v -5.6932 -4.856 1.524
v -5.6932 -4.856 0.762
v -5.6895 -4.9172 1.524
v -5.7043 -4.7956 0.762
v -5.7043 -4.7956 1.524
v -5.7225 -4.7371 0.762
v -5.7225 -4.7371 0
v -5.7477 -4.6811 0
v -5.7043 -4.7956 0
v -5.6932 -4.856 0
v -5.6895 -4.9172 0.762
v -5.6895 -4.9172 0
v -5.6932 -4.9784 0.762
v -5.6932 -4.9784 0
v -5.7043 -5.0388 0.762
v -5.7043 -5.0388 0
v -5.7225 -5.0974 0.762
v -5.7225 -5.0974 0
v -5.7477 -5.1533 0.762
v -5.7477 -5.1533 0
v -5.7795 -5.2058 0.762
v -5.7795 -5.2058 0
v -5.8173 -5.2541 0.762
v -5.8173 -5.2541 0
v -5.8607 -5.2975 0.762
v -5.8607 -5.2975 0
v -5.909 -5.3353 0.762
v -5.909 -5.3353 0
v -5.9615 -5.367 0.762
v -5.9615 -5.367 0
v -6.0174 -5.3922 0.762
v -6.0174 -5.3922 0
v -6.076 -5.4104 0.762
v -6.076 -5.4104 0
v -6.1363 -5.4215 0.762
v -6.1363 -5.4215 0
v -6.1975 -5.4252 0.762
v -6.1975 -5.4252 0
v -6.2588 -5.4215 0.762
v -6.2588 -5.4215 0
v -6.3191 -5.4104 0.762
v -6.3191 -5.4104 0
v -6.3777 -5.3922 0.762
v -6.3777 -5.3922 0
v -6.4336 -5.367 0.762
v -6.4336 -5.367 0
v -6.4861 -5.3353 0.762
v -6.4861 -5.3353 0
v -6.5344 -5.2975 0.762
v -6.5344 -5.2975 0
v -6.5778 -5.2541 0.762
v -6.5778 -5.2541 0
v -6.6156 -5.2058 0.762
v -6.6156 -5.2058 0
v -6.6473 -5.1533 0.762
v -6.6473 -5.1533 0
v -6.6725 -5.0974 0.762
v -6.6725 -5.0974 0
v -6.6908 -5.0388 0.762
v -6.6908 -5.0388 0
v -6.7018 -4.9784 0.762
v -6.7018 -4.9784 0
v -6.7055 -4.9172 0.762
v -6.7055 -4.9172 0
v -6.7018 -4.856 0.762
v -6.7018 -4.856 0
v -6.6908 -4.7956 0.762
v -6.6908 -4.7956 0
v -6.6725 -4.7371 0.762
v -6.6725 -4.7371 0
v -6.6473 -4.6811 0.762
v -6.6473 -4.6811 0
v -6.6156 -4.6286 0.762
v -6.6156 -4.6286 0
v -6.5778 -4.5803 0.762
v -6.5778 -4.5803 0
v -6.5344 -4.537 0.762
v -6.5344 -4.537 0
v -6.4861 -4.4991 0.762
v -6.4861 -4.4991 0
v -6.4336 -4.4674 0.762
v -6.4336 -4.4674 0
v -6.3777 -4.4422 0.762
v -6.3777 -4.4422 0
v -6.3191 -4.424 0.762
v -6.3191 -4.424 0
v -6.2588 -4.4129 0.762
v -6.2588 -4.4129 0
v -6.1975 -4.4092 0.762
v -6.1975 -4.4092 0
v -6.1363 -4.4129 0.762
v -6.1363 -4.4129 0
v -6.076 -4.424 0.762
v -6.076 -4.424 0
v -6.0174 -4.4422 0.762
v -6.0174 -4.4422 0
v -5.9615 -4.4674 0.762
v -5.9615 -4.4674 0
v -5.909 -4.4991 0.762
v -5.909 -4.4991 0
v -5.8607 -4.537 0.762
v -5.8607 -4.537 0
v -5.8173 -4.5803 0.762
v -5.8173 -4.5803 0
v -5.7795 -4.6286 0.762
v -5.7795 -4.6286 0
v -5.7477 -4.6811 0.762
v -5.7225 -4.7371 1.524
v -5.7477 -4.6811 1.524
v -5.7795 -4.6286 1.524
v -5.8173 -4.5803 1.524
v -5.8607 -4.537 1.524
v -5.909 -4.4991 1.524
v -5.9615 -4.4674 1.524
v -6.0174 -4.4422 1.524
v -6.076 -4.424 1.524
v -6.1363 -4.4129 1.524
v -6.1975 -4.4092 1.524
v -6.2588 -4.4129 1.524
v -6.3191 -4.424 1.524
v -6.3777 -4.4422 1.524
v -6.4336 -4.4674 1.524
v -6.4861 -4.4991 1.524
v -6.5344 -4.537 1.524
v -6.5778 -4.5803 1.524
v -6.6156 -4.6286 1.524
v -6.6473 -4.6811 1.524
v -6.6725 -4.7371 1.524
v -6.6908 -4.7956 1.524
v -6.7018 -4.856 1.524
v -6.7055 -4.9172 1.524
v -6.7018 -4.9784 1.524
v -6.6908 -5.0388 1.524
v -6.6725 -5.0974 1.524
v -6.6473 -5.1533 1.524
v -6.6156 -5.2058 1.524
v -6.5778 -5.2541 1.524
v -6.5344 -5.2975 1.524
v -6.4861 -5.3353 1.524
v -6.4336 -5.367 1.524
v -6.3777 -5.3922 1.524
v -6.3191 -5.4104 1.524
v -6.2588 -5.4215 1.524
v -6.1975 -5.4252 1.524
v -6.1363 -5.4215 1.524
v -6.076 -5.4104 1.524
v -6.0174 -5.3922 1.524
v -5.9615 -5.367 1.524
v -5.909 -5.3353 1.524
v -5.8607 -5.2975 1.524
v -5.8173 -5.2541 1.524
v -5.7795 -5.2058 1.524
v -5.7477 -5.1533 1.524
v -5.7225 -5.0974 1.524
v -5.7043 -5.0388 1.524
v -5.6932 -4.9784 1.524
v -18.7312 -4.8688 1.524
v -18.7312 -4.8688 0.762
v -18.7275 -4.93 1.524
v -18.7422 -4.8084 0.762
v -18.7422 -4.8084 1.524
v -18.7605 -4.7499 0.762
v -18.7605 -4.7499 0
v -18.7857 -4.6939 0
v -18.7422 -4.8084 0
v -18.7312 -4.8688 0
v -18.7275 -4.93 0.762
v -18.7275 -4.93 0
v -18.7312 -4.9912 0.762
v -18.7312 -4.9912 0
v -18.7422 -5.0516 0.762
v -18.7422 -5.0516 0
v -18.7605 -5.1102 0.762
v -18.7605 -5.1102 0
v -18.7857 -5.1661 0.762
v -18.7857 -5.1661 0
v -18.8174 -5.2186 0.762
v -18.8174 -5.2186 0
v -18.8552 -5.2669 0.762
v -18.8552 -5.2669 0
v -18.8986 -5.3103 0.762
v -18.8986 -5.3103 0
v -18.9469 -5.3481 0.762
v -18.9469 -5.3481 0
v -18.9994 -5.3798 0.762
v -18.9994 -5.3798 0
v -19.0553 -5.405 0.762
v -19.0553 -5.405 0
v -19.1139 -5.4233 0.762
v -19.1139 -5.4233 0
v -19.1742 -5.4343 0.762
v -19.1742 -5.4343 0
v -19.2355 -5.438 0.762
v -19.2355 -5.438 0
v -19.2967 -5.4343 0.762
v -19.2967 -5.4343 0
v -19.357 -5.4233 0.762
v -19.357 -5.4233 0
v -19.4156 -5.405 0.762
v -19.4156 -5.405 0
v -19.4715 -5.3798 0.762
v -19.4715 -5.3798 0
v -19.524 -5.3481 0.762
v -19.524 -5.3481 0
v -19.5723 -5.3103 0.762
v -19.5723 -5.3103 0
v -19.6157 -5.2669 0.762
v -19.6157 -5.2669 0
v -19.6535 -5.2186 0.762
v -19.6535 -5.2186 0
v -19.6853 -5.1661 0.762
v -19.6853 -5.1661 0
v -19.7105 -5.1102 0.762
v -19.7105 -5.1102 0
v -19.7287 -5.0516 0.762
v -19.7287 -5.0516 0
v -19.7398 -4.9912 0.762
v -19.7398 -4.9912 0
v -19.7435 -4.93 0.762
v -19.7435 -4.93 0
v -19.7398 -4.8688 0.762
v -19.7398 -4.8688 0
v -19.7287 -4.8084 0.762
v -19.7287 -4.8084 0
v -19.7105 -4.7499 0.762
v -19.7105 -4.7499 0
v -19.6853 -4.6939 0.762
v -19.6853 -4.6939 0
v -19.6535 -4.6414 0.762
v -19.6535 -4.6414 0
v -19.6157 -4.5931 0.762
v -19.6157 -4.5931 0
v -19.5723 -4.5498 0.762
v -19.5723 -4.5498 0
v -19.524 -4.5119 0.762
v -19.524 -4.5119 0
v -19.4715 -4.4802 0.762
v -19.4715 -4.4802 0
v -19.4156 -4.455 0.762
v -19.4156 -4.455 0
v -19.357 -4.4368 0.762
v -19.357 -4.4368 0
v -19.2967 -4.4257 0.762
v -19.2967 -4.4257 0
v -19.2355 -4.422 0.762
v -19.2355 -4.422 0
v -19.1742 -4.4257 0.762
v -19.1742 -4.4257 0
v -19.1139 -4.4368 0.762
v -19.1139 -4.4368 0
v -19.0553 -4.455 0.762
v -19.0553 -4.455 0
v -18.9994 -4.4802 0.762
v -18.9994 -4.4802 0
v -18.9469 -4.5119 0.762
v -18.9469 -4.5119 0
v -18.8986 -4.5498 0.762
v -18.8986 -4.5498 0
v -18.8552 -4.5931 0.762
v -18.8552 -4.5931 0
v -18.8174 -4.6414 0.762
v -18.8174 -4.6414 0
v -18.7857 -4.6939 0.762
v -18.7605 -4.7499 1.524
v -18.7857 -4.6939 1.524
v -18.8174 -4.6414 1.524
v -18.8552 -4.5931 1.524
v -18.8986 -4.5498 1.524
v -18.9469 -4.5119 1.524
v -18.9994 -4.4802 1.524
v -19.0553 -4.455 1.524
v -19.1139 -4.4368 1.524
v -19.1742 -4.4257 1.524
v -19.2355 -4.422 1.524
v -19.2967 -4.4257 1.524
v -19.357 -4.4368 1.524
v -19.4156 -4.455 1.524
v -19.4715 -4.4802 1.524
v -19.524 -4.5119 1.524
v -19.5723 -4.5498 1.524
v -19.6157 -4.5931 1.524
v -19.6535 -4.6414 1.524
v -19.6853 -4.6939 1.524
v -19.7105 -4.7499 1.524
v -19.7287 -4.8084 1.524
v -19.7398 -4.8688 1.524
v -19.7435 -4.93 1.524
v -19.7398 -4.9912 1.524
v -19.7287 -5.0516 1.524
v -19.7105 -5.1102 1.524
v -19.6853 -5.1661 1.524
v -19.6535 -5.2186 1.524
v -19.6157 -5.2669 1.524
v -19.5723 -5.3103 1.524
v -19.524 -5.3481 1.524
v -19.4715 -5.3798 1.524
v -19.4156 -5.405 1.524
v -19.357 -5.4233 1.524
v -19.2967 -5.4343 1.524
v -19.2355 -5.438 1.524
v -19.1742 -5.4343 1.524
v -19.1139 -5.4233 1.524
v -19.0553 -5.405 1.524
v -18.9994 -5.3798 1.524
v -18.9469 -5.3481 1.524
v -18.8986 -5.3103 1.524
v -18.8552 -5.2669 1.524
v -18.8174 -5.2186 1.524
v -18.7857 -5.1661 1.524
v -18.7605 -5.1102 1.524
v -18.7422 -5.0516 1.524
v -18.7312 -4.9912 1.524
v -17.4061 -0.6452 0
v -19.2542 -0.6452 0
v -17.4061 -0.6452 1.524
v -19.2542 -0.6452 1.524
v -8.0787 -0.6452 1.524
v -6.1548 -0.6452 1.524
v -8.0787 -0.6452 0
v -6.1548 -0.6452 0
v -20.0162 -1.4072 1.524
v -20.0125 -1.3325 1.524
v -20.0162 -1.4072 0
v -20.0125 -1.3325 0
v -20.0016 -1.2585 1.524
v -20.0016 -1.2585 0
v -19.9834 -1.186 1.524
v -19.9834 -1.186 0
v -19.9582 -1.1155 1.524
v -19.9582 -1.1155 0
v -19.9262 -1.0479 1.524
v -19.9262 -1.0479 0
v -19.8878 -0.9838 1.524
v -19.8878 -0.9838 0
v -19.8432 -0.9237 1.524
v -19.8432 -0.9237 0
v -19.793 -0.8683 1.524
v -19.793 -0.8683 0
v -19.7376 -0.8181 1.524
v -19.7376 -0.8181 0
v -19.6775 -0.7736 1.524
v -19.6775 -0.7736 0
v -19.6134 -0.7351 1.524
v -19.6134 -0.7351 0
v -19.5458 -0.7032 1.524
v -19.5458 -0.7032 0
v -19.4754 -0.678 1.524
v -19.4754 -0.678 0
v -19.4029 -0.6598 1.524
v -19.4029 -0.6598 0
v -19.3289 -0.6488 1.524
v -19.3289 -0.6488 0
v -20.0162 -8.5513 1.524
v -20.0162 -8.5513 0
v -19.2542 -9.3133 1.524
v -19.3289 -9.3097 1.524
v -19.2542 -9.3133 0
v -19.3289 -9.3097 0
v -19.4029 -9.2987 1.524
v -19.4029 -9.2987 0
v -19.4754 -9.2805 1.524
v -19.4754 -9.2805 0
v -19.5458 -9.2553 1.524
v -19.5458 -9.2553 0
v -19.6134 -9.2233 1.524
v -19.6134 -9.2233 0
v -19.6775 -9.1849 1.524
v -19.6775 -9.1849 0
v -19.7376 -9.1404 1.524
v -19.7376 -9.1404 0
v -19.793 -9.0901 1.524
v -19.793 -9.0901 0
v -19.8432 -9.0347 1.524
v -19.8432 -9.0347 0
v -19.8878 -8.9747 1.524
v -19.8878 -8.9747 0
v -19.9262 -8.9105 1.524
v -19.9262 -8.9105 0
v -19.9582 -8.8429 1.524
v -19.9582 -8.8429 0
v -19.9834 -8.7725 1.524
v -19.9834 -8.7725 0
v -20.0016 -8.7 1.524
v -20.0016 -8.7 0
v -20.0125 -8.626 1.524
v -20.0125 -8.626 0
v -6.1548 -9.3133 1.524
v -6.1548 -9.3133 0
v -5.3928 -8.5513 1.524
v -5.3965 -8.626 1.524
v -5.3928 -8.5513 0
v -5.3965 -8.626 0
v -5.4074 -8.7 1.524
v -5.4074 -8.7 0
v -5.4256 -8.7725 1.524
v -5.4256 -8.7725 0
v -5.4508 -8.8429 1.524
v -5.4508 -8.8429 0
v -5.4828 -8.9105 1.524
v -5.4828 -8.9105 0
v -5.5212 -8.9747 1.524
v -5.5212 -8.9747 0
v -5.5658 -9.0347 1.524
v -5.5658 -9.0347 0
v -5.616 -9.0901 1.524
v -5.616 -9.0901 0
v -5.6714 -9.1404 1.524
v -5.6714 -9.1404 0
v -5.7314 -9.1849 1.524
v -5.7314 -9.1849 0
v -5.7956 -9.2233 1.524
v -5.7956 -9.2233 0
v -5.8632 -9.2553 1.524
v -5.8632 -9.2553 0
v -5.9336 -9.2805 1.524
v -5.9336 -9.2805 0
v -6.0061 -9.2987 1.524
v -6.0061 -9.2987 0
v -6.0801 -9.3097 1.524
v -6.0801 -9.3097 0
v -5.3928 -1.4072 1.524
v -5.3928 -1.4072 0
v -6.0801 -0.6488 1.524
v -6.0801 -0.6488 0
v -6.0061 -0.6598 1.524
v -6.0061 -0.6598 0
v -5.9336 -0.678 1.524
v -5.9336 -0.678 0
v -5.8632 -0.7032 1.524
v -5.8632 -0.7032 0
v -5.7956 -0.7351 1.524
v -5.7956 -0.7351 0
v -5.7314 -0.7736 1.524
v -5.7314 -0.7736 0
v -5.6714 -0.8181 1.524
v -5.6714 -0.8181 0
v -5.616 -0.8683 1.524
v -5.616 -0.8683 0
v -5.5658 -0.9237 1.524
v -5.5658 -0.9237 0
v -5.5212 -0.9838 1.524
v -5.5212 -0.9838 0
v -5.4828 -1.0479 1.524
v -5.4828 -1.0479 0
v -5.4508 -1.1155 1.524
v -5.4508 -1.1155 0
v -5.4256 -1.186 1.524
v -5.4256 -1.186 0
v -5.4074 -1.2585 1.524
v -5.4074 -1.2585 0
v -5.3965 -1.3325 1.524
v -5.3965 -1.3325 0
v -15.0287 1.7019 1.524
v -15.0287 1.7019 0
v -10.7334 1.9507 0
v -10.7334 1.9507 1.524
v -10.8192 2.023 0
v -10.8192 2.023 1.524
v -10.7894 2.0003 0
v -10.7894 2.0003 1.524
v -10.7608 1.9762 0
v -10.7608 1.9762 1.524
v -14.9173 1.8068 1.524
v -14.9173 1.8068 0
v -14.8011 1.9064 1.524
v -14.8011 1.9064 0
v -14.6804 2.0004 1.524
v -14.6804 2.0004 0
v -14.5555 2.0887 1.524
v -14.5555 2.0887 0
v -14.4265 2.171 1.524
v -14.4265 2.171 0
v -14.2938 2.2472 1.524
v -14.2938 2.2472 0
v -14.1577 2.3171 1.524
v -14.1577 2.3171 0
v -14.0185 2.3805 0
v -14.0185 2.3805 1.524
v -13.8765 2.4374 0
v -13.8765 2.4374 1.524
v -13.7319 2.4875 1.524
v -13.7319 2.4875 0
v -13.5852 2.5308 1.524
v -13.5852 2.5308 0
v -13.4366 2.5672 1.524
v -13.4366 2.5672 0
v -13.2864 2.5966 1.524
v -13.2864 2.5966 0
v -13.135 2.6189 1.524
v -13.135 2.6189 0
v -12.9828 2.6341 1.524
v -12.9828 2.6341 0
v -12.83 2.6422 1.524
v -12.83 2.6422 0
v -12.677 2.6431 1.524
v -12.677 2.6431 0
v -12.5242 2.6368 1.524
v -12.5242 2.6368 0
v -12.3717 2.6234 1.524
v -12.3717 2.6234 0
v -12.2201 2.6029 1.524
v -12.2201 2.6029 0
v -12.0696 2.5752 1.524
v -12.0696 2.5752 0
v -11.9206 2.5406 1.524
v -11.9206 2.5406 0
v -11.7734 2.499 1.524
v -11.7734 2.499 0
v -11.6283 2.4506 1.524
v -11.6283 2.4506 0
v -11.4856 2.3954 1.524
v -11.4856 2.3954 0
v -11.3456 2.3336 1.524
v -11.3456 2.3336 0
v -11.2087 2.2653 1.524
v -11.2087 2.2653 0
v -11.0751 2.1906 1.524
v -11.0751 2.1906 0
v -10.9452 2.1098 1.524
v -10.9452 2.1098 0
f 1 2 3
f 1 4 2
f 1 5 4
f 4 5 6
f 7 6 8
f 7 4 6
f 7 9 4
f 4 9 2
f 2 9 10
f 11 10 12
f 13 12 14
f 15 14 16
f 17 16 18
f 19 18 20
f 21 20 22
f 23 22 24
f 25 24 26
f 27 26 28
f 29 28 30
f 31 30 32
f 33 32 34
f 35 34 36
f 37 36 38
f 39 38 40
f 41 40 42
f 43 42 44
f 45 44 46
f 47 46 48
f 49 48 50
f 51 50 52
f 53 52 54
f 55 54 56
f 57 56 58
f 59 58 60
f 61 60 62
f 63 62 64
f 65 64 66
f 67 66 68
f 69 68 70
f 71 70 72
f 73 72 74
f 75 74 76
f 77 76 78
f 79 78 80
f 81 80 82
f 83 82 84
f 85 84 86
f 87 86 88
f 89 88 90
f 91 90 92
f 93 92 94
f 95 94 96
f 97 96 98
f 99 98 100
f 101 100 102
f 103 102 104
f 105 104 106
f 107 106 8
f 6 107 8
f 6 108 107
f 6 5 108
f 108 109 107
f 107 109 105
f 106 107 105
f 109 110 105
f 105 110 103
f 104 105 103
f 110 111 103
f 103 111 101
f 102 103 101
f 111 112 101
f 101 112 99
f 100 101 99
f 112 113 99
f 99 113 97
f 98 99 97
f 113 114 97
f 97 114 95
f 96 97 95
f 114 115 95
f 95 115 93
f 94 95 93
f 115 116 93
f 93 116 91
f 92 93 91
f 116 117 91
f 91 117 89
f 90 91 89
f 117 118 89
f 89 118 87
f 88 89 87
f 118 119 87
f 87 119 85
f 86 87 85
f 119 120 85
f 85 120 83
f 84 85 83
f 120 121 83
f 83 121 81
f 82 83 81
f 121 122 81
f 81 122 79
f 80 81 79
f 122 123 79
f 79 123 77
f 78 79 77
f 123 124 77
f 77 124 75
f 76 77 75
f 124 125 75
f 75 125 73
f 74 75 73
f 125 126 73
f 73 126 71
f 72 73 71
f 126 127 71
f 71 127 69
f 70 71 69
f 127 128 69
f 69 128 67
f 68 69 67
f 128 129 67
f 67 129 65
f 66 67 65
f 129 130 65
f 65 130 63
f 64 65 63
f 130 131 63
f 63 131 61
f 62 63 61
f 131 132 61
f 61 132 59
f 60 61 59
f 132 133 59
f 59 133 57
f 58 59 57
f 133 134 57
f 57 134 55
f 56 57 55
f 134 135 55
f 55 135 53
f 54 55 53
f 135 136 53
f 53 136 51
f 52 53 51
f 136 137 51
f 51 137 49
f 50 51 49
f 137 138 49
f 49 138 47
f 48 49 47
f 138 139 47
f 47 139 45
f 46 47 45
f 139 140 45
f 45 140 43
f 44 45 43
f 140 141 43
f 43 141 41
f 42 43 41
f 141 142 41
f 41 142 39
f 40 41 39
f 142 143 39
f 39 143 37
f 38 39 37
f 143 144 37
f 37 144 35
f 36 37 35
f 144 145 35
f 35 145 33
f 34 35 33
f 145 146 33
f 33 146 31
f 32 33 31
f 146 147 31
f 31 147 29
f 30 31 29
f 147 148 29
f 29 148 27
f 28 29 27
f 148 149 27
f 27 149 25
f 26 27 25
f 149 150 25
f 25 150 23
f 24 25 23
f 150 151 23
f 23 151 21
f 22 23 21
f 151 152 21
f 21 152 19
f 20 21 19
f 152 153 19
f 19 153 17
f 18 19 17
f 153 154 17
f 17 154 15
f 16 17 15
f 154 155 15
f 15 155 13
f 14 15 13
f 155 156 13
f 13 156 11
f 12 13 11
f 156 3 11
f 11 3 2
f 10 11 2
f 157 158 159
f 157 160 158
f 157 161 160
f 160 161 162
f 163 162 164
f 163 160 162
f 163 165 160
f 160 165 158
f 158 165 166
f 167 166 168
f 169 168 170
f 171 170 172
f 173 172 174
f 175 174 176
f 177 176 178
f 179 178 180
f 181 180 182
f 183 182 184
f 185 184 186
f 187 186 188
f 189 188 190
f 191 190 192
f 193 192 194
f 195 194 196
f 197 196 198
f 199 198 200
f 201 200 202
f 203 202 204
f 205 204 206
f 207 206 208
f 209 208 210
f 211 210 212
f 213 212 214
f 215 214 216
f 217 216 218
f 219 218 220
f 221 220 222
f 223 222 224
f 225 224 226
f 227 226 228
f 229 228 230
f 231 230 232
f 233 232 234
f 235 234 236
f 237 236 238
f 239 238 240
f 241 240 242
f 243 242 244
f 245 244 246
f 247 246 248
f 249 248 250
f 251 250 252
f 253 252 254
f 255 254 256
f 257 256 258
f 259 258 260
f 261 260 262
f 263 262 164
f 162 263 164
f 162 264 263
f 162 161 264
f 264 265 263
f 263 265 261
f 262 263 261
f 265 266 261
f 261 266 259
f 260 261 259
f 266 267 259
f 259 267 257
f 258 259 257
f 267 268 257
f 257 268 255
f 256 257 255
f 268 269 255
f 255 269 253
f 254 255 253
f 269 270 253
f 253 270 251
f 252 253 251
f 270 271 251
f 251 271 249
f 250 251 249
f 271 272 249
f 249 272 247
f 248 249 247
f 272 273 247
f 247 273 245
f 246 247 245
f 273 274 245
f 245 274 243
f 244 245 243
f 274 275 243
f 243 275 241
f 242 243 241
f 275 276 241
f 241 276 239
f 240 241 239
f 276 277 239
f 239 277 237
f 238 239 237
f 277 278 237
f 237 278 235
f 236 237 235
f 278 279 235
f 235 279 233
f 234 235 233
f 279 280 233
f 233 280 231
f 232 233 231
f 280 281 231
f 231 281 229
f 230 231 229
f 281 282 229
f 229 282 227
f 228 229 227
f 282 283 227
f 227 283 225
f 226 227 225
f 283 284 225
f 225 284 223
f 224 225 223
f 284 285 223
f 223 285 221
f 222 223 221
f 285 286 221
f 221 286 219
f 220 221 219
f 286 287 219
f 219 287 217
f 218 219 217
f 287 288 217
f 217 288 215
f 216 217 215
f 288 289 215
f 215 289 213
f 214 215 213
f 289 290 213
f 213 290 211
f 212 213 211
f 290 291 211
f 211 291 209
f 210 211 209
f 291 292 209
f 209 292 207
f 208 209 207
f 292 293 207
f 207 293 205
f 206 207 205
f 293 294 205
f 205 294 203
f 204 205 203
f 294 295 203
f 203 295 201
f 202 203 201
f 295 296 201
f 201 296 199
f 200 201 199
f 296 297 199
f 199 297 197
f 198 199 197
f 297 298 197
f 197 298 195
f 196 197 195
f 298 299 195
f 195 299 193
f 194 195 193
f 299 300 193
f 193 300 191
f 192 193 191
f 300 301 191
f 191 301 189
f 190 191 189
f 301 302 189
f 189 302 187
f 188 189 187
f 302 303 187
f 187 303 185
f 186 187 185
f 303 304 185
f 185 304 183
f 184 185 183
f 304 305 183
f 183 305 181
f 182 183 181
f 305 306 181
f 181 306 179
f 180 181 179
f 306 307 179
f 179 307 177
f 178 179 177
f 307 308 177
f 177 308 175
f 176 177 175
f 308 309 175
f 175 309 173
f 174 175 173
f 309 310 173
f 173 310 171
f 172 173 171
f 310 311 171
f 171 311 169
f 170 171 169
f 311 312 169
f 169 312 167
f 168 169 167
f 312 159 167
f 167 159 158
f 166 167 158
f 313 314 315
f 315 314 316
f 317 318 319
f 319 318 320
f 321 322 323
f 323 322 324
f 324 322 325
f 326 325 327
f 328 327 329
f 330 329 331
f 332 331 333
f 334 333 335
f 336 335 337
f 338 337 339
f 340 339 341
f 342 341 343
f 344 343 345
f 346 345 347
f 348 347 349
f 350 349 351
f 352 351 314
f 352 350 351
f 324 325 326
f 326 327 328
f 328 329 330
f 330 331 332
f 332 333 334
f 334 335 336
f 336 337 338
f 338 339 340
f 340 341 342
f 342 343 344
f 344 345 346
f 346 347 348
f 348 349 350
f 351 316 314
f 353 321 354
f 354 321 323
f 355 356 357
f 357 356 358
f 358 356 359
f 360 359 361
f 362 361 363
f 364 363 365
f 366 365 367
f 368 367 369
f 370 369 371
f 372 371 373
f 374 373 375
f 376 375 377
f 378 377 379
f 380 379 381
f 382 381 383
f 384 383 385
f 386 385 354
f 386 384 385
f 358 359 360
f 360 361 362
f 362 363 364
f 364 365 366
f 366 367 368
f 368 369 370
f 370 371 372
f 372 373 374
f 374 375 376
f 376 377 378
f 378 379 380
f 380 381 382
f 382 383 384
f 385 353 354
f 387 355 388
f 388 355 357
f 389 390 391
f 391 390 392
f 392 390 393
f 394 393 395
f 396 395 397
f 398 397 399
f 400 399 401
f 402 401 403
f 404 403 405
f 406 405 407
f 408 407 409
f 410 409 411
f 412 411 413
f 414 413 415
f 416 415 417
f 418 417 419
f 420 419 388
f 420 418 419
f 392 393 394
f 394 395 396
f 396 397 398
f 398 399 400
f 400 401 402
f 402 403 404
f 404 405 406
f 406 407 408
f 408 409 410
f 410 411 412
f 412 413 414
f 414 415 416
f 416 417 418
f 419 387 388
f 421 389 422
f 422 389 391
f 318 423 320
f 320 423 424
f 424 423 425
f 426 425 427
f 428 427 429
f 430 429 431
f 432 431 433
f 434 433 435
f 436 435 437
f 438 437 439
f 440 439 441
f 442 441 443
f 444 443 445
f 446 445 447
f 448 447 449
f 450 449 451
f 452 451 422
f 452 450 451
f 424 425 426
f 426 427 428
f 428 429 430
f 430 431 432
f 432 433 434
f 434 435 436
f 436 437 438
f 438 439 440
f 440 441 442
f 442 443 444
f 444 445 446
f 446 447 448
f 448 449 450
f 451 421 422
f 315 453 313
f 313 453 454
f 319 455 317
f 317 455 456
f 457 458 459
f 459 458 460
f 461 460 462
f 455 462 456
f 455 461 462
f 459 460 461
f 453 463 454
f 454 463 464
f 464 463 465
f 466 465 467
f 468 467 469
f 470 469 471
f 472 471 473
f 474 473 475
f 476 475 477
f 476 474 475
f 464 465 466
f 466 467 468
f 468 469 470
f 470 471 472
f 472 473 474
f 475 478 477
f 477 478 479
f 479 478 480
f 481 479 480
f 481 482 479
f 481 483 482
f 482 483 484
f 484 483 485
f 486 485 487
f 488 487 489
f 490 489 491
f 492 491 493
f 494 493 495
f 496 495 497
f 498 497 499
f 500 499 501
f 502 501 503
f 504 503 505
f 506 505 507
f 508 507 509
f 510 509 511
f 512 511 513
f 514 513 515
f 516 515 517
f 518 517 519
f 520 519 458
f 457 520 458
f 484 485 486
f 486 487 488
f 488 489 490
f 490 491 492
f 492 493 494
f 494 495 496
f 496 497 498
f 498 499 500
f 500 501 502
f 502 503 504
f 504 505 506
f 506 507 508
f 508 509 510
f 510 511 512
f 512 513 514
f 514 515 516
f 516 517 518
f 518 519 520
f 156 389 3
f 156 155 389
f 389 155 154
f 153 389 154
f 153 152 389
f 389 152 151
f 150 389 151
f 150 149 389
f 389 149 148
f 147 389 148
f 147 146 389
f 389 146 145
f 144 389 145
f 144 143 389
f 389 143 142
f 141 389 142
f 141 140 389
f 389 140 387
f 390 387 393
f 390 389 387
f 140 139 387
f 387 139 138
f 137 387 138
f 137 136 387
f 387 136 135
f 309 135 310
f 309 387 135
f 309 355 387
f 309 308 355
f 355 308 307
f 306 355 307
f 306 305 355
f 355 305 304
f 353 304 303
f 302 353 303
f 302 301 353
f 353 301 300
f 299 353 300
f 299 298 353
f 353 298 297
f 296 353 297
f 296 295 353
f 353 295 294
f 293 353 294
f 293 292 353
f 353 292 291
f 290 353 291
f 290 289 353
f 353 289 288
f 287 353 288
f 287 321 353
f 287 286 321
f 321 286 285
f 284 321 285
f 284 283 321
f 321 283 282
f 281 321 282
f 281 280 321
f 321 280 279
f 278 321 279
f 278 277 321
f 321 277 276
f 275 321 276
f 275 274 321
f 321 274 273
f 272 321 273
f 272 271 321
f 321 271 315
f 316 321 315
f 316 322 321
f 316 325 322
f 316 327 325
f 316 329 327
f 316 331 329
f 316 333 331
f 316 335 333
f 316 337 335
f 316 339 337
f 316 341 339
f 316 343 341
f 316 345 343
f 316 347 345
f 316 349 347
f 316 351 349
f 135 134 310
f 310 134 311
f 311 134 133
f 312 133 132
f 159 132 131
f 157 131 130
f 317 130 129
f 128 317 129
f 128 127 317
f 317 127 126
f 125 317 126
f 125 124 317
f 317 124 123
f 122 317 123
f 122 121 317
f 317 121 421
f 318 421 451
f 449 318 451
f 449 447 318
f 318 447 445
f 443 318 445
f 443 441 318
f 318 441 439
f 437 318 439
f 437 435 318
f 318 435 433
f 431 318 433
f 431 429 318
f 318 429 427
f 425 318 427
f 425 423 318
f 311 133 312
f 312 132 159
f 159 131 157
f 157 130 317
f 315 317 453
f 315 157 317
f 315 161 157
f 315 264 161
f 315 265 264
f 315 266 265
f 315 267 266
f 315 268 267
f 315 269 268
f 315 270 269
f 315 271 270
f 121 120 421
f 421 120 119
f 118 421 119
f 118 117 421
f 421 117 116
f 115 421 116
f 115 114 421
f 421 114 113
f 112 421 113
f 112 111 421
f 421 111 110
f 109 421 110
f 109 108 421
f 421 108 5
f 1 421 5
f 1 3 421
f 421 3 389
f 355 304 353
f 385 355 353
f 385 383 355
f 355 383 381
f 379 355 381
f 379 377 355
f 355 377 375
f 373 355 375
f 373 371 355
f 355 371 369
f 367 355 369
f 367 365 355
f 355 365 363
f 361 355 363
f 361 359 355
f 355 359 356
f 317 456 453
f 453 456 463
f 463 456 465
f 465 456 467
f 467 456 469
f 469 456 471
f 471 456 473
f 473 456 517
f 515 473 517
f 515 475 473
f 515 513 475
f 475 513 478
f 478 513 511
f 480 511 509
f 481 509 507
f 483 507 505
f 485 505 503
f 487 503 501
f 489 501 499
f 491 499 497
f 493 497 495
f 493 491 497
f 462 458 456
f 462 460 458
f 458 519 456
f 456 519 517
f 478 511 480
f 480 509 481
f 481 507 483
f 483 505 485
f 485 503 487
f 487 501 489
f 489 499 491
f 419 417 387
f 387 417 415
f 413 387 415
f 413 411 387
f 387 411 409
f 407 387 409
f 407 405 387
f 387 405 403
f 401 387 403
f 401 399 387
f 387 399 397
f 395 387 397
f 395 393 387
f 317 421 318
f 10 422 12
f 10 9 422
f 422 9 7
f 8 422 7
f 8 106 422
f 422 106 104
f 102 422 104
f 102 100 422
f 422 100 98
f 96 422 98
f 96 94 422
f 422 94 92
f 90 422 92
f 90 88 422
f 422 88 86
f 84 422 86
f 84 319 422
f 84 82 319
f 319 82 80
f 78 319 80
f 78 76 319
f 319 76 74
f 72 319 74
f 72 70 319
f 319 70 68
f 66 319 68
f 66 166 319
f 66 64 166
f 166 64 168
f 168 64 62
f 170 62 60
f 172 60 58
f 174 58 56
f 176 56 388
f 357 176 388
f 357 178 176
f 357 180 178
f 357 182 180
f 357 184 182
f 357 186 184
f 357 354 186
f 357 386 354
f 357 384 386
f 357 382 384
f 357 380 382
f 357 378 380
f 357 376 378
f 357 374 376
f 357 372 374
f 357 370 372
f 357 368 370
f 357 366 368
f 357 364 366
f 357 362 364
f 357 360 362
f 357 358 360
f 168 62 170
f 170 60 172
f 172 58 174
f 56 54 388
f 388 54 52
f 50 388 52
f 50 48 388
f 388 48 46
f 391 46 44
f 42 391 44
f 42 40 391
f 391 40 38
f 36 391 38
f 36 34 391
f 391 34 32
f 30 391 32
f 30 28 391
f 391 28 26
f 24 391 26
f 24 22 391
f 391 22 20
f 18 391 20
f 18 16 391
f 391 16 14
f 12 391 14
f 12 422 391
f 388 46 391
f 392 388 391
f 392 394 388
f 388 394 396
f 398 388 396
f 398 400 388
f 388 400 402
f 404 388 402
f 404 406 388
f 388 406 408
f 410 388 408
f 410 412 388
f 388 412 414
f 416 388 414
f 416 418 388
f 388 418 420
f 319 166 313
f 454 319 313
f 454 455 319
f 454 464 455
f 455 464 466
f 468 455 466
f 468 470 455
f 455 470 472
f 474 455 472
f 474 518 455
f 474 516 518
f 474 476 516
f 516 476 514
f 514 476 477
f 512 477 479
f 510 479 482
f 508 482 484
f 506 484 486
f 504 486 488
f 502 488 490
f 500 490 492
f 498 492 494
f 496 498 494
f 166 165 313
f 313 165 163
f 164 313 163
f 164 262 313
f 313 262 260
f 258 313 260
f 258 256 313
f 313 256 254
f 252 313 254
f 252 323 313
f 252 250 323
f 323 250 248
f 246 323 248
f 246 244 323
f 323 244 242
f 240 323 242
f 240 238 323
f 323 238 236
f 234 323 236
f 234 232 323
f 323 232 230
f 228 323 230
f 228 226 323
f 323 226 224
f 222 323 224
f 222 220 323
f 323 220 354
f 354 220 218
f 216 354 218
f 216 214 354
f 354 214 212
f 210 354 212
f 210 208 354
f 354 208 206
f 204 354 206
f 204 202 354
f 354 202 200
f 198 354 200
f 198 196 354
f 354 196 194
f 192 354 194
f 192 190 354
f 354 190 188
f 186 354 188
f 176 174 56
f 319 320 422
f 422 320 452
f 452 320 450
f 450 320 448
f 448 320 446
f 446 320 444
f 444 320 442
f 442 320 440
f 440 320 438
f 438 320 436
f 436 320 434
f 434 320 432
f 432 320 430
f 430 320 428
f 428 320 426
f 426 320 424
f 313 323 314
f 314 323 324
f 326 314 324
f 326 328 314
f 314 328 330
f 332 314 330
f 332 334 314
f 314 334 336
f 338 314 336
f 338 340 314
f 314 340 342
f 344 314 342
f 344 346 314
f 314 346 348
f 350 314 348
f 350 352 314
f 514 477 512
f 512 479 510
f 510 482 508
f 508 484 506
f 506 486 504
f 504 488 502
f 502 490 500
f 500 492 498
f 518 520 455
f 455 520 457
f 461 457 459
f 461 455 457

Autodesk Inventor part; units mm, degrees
ref_plane "YZ Plane" through (0, 0, 0) normal (1, 0, 0) x (0, 1, 0)
ref_plane "XZ Plane" through (0, 0, 0) normal (0, 1, 0) x (-1, 0, 0)
ref_plane "XY Plane" through (0, 0, 0) normal (0, 0, 1) x (1, 0, 0)
sketch "Block1" plane through (0, 0, 0) normal (0, 0, 1) x (1, 0, 0)
  line L0 (-17.5911, -8.406) -> (-17.5911, -2.6569)
  arc A0 (-15.6308, 0.6431) -> (-17.4939, -2.2845) centre (9.5285, -17.4245) ccw
  arc A1 (-17.4939, -2.2845) -> (-17.5911, -2.6569) centre (-16.8291, -2.6569) ccw
  line L1 (-13.0521, -3.6322) -> (-2.9855, -3.6322)
  line L2 (-2.9855, -3.6322) -> (-2.9855, -10.0136)
  line L3 (-2.9855, -10.0136) -> (-13.0521, -10.0136)
  line L4 (-13.0521, -10.0136) -> (-13.0521, -3.6322)
  ellipse E0 centre (-8.0188, -3.6322) end of major axis (-8.0188, -7.4704) minor radius 2.9685
  point P0 (-13.9703, -5.5207)
  point P1 (-17.5911, -2.4593)
  dimension "d111" = 0.762
sketch "Block2" plane through (0, 0, 0) normal (0, 0, 1) x (1, 0, 0)
  line L0 (-7.8958, -2.4967) -> (-7.8958, -8.4058)
  line L1 (-8.6339, -9.168) -> (-16.8291, -9.168)
  ellipse E0 centre (-12.6564, -2.1178) end of major axis (-12.6564, -6.4967) minor radius 3.853 (-9.6585, 0.6329) -> (-15.6415, 0.6509) ccw
  arc A0 (-7.8958, -2.4967) -> (-9.6091, 0.6391) centre (-35.8892, -15.7554) ccw
  line L2 (-17.6018, -8.3981) -> (-17.6018, -2.6491)
  arc A1 (-15.6415, 0.6509) -> (-17.5045, -2.2766) centre (9.5178, -17.4167) ccw
  arc A2 (-17.5045, -2.2766) -> (-17.6018, -2.6491) centre (-16.8398, -2.6491) ccw
  line L3 (-13.0627, -3.6243) -> (-2.9962, -3.6243)
  line L4 (-2.9962, -3.6243) -> (-2.9962, -10.0058)
  line L5 (-2.9962, -10.0058) -> (-13.0627, -10.0058)
  line L6 (-13.0627, -10.0058) -> (-13.0627, -3.6243)
  ellipse E1 centre (-8.0295, -3.6243) end of major axis (-8.0295, -7.4625) minor radius 2.9685
  point P0 (-12.2397, -5.1213)
sketch "Block3" plane through (0, 0, 0) normal (0, 0, 1) x (1, 0, 0)
  arc A0 (-17.5911, -8.406) -> (-16.8291, -9.168) centre (-16.8291, -8.406) ccw
  arc A1 (-8.6339, -9.168) -> (-7.8719, -8.406) centre (-8.6339, -8.406) ccw
  line L0 (-7.8958, -2.4967) -> (-7.8958, -8.4058)
  line L1 (-8.6339, -9.168) -> (-16.8291, -9.168)
  ellipse E0 centre (-12.6564, -2.1178) end of major axis (-12.6564, -6.4967) minor radius 3.853 (-9.6585, 0.6329) -> (-15.6415, 0.6509) ccw
  arc A2 (-7.8958, -2.4967) -> (-9.6091, 0.6391) centre (-35.8892, -15.7554) ccw
  line L2 (-17.6018, -8.3981) -> (-17.6018, -2.6491)
  arc A3 (-15.6415, 0.6509) -> (-17.5045, -2.2766) centre (9.5178, -17.4167) ccw
  arc A4 (-17.5045, -2.2766) -> (-17.6018, -2.6491) centre (-16.8398, -2.6491) ccw
  line L3 (-13.0627, -3.6243) -> (-2.9962, -3.6243)
  line L4 (-2.9962, -3.6243) -> (-2.9962, -10.0058)
  line L5 (-2.9962, -10.0058) -> (-13.0627, -10.0058)
  line L6 (-13.0627, -10.0058) -> (-13.0627, -3.6243)
  ellipse E1 centre (-8.0295, -3.6243) end of major axis (-8.0295, -7.4625) minor radius 2.9685
  point P0 (-12.6868, -8.3844)
  dimension "d110" = 0.762
sketch "Block4" plane through (0, 0, 0) normal (0, 0, 1) x (1, 0, 0)
  arc A0 (-17.5911, -8.406) -> (-16.8291, -9.168) centre (-16.8291, -8.406) ccw
  arc A1 (-8.6339, -9.168) -> (-7.8719, -8.406) centre (-8.6339, -8.406) ccw
  line L0 (-7.8958, -2.4967) -> (-7.8958, -8.4058)
  line L1 (-8.6339, -9.168) -> (-16.8291, -9.168)
  ellipse E0 centre (-12.6564, -2.1178) end of major axis (-12.6564, -6.4967) minor radius 3.853 (-9.6585, 0.6329) -> (-15.6415, 0.6509) ccw
  arc A2 (-7.8958, -2.4967) -> (-9.6091, 0.6391) centre (-35.8892, -15.7554) ccw
  line L2 (-17.6018, -8.3981) -> (-17.6018, -2.6491)
  arc A3 (-15.6415, 0.6509) -> (-17.5045, -2.2766) centre (9.5178, -17.4167) ccw
  arc A4 (-17.5045, -2.2766) -> (-17.6018, -2.6491) centre (-16.8398, -2.6491) ccw
  line L3 (-13.0627, -3.6243) -> (-2.9962, -3.6243)
  line L4 (-2.9962, -3.6243) -> (-2.9962, -10.0058)
  line L5 (-2.9962, -10.0058) -> (-13.0627, -10.0058)
  line L6 (-13.0627, -10.0058) -> (-13.0627, -3.6243)
  ellipse E1 centre (-8.0295, -3.6243) end of major axis (-8.0295, -7.4625) minor radius 2.9685
  point P0 (-12.6868, -8.3844)
sketch "Block5" plane through (0, 0, 0) normal (0, 0, 1) x (1, 0, 0)
  ellipse E0 centre (-12.7876, -1.8459) end of major axis (-12.7876, -5.6516) minor radius 3.3457 (-10.6846, 1.114) -> (-14.8941, 1.1109) ccw
  arc A0 (-15.6984, 0.3796) -> (-14.8859, 1.1184) centre (-85.8065, 78.298) ccw
  arc A1 (-10.6894, 1.1184) -> (-9.8669, 0.3716) centre (60.1779, 78.3469) ccw
  point P0 (-12.7899, 8.9309)
sketch "Block6" plane through (0, 0, 0) normal (0, 0, 1) x (1, 0, 0)
  arc A0 (-10.9697, 1.4333) -> (-15.1792, 1.1122) centre (-12.8849, -1.2117) ccw
  line L0 (-15.1792, 1.1122) -> (-17.7718, -1.4473)
  line L1 (-10.8839, 1.361) -> (-8.0119, -1.4473)
  line L2 (-17.7718, -1.4473) -> (-8.0119, -1.4473)
  arc A1 (-10.8839, 1.361) -> (-10.9697, 1.4333) centre (-11.4166, 0.8161) ccw
  point P0 (-12.0633, -0.3449)
  point P1 (-10.9214, 1.3977)
  dimension "d153" = 0.762
sketch "Sketch1" plane through (0, 0, 0) normal (0, 0, 1) x (1, 0, 0)
  line L0 (-19.9256, -1.4064) -> (-6.1106, -1.4064)
  line L1 (-6.1106, -1.4064) -> (-6.1106, -8.6156)
  line L2 (-6.1106, -8.6156) -> (-19.9256, -8.6156)
  line L3 (-19.9256, -8.6156) -> (-19.9256, -1.4064)
extrude "Extrusion1" add sketch "Sketch1" along normal blind 1.524
sketch "Sketch13" plane through (0, 0, 1.524) normal (0, 0, 1) x (1, 0, 0)
  arc A0 (-10.8192, 2.023) -> (-15.0287, 1.7019) centre (-12.7344, -0.622) ccw
  line L0 (-15.0287, 1.7019) -> (-17.6213, -0.8576)
  line L1 (-10.7334, 1.9507) -> (-7.8614, -0.8576)
  line L2 (-17.6213, -0.8576) -> (-7.8614, -0.8576)
  arc A1 (-10.7334, 1.9507) -> (-10.8192, 2.023) centre (-11.2661, 1.4058) ccw
  point P0 (0, 0)
  point P1 (0, 0)
  point P2 (0, 0)
extrude "Extrusion8" add sketch "Sketch13" against normal blind 1.524
sketch "Sketch16" plane through (0, 0, 1.524) normal (0, 0, 1) x (1, 0, 0)
  line L0 (-19.2542, -0.6452) -> (-6.1548, -0.6452)
  line L1 (-5.3928, -1.4072) -> (-5.3928, -8.5513)
  line L2 (-6.1548, -9.3133) -> (-19.2542, -9.3133)
  line L3 (-20.0162, -8.5513) -> (-20.0162, -1.4072)
  arc A0 (-19.2542, -0.6452) -> (-20.0162, -1.4072) centre (-19.2542, -1.4072) ccw
  arc A1 (-20.0162, -8.5513) -> (-19.2542, -9.3133) centre (-19.2542, -8.5513) ccw
  arc A2 (-6.1548, -9.3133) -> (-5.3928, -8.5513) centre (-6.1548, -8.5513) ccw
  arc A3 (-5.3928, -1.4072) -> (-6.1548, -0.6452) centre (-6.1548, -1.4072) ccw
  point P0 (0, 0)
  dimension "d177" = 0.762
  dimension "d178" = 0.762
  dimension "d179" = 0.762
  dimension "d180" = 0.762
extrude "Extrusion9" add sketch "Sketch16" against normal blind 1.524
hole "Hole9" at (-19.2355, -4.93, 1.524) direction (0, 0, -1) diameter 1.016 depth 1.524
hole "Hole10" at (-6.1975, -4.9172, 1.524) direction (0, 0, -1) diameter 1.016 depth 1.524
properties part number "headplateLP_protector"
